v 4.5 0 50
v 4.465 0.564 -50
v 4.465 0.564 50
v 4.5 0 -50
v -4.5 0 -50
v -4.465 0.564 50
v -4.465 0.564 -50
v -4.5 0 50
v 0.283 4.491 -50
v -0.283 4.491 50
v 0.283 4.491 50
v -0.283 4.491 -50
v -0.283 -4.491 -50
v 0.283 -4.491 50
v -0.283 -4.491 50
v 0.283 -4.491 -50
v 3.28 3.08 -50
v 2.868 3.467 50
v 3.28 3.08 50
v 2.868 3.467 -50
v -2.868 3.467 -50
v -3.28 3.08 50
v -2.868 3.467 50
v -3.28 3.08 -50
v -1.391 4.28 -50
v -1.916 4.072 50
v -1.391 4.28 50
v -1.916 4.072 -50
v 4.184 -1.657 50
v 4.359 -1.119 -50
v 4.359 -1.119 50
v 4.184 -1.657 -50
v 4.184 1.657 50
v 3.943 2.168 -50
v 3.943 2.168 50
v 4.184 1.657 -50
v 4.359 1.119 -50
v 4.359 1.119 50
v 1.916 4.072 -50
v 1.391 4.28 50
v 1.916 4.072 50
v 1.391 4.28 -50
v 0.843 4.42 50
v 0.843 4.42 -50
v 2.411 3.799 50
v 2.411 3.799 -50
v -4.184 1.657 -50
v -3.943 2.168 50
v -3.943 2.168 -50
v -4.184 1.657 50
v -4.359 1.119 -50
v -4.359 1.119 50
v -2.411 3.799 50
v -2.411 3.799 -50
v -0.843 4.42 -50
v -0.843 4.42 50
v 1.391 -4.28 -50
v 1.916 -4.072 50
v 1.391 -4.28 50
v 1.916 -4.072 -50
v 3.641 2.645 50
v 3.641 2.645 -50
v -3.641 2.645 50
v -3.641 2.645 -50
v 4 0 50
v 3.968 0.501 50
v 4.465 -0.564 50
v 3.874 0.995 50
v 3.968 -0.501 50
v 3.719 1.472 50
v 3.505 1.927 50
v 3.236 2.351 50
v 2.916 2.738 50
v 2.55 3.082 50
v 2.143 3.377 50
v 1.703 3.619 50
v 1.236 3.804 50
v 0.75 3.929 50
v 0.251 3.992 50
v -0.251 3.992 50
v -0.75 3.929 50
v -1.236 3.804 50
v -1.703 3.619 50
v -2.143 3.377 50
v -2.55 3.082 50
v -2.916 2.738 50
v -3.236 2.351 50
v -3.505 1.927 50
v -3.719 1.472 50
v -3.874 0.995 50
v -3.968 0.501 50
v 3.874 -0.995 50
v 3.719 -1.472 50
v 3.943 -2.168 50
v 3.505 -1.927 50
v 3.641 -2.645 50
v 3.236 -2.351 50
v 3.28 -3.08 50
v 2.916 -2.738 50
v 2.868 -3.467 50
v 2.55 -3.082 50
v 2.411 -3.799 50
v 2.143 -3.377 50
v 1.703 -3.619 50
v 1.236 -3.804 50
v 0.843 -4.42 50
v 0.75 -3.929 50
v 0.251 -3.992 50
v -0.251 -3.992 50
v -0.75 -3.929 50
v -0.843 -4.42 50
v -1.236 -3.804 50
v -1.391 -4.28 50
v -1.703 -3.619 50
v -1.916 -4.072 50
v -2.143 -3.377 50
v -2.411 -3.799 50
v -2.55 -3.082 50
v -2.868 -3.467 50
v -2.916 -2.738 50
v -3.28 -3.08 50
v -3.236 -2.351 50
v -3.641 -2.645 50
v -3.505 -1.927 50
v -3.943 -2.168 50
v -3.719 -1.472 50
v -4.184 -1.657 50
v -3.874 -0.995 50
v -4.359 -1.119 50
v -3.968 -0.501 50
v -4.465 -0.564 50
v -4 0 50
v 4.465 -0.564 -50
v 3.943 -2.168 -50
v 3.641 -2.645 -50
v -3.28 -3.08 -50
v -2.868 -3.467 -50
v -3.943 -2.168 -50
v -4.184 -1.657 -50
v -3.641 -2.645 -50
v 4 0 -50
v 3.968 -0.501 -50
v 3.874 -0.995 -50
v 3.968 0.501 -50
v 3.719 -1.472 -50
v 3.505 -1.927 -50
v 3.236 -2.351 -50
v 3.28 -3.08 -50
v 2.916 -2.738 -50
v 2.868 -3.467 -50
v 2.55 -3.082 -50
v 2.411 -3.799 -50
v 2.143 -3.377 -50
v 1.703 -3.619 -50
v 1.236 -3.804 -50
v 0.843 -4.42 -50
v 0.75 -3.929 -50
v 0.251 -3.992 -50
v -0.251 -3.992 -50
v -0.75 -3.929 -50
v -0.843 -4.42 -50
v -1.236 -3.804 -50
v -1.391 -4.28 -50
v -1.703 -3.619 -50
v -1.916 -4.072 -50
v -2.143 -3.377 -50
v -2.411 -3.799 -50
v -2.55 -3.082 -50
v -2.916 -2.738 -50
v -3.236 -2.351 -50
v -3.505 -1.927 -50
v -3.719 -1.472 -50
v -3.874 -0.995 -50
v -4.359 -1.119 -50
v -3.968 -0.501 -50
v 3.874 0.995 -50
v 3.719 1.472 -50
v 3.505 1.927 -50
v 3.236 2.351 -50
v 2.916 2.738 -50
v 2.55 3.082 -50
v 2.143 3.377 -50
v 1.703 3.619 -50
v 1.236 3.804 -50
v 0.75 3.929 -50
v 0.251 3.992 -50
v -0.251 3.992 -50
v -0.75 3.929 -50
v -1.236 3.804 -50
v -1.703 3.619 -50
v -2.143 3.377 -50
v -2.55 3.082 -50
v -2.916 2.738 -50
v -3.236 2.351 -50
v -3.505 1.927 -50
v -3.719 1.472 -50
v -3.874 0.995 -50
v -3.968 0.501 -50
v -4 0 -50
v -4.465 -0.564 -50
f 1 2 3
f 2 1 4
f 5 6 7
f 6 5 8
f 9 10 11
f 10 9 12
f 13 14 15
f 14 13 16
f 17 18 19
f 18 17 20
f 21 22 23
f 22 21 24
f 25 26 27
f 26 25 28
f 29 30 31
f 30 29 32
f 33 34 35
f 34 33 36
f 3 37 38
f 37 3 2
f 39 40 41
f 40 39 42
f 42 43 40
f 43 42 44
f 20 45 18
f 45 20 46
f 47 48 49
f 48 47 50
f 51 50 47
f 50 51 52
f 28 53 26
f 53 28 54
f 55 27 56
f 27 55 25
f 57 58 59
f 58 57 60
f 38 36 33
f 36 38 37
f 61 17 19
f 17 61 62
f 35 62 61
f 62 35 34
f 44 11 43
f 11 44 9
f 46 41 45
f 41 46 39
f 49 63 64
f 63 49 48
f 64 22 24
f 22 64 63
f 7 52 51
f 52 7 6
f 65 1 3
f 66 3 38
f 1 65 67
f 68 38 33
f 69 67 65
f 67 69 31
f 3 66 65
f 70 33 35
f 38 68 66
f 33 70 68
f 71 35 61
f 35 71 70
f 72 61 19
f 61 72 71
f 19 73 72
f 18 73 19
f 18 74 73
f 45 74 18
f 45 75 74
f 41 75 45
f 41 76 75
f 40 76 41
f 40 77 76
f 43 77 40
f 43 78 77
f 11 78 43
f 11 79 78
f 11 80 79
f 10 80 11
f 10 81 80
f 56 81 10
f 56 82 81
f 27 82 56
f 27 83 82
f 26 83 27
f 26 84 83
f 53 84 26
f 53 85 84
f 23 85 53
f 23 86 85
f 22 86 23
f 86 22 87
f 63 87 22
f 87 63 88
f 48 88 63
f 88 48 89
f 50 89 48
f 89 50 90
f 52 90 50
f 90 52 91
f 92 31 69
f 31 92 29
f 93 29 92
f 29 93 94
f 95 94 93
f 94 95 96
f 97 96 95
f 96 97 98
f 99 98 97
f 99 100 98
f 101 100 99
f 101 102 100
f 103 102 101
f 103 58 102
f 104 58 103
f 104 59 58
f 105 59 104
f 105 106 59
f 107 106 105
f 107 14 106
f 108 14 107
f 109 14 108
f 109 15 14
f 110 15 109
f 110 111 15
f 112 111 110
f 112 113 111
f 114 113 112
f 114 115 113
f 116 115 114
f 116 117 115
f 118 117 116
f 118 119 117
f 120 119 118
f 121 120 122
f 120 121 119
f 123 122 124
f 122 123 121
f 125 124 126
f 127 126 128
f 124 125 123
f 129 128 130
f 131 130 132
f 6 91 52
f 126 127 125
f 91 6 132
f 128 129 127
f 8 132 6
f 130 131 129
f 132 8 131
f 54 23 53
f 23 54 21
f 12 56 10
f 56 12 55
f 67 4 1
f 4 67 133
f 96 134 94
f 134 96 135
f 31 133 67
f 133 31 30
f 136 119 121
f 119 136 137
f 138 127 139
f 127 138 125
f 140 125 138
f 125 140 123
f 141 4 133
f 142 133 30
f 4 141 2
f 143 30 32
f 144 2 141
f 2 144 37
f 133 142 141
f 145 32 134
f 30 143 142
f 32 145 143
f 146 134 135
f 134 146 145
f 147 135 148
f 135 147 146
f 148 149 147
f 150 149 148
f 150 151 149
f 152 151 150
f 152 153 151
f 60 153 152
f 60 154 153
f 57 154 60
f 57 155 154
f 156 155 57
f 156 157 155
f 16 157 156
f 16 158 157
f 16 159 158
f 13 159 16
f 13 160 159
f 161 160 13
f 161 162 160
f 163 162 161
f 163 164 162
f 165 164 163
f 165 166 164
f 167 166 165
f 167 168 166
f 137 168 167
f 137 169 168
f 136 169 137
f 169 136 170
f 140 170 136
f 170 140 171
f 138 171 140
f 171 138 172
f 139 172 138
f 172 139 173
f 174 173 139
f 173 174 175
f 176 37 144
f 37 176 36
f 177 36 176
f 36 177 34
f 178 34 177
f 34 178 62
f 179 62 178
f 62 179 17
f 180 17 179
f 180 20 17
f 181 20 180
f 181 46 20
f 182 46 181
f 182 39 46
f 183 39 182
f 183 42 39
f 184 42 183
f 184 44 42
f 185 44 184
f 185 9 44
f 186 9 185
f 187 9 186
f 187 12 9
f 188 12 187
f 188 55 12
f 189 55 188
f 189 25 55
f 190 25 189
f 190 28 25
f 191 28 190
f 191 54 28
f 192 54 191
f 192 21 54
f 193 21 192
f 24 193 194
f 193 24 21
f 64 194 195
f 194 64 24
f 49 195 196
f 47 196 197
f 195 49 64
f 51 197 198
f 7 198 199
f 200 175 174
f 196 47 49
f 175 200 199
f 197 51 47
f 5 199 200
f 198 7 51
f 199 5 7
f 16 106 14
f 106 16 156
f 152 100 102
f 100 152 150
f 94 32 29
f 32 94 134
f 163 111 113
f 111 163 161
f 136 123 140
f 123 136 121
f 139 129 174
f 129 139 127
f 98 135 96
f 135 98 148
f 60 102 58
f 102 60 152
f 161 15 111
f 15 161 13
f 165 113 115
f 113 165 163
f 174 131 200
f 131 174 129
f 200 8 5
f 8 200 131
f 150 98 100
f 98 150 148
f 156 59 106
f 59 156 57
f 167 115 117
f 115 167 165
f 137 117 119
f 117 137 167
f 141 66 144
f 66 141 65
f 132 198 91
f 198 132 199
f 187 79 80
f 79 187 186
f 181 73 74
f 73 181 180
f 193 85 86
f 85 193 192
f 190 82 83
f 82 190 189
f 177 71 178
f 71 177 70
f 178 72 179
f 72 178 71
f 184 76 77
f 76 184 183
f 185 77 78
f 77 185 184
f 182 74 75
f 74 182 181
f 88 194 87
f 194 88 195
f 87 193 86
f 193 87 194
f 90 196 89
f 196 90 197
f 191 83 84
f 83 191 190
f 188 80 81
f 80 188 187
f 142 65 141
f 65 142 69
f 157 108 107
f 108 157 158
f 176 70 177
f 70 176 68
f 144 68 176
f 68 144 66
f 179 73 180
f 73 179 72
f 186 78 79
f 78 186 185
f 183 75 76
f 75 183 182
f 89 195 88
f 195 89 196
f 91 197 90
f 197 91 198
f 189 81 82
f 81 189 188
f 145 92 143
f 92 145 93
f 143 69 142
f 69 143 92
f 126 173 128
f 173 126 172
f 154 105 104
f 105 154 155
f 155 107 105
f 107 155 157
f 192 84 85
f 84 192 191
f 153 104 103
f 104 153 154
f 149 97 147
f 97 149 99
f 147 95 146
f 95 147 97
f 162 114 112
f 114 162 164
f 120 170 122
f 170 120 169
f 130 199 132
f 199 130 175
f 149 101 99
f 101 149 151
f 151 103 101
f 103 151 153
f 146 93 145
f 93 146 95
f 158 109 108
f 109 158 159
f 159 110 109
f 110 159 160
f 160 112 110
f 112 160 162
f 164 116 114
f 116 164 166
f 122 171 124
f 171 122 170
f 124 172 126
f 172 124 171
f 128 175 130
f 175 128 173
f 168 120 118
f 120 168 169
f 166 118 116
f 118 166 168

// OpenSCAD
$fn = 50;


difference() {
	union() {
		translate(v = [0, 0, -50.0000000000]) {
			cylinder(h = 100, r = 4.5000000000);
		}
	}
	union() {
		translate(v = [0, 0, -100.0000000000]) {
			cylinder(h = 200, r = 4);
		}
	}
}
